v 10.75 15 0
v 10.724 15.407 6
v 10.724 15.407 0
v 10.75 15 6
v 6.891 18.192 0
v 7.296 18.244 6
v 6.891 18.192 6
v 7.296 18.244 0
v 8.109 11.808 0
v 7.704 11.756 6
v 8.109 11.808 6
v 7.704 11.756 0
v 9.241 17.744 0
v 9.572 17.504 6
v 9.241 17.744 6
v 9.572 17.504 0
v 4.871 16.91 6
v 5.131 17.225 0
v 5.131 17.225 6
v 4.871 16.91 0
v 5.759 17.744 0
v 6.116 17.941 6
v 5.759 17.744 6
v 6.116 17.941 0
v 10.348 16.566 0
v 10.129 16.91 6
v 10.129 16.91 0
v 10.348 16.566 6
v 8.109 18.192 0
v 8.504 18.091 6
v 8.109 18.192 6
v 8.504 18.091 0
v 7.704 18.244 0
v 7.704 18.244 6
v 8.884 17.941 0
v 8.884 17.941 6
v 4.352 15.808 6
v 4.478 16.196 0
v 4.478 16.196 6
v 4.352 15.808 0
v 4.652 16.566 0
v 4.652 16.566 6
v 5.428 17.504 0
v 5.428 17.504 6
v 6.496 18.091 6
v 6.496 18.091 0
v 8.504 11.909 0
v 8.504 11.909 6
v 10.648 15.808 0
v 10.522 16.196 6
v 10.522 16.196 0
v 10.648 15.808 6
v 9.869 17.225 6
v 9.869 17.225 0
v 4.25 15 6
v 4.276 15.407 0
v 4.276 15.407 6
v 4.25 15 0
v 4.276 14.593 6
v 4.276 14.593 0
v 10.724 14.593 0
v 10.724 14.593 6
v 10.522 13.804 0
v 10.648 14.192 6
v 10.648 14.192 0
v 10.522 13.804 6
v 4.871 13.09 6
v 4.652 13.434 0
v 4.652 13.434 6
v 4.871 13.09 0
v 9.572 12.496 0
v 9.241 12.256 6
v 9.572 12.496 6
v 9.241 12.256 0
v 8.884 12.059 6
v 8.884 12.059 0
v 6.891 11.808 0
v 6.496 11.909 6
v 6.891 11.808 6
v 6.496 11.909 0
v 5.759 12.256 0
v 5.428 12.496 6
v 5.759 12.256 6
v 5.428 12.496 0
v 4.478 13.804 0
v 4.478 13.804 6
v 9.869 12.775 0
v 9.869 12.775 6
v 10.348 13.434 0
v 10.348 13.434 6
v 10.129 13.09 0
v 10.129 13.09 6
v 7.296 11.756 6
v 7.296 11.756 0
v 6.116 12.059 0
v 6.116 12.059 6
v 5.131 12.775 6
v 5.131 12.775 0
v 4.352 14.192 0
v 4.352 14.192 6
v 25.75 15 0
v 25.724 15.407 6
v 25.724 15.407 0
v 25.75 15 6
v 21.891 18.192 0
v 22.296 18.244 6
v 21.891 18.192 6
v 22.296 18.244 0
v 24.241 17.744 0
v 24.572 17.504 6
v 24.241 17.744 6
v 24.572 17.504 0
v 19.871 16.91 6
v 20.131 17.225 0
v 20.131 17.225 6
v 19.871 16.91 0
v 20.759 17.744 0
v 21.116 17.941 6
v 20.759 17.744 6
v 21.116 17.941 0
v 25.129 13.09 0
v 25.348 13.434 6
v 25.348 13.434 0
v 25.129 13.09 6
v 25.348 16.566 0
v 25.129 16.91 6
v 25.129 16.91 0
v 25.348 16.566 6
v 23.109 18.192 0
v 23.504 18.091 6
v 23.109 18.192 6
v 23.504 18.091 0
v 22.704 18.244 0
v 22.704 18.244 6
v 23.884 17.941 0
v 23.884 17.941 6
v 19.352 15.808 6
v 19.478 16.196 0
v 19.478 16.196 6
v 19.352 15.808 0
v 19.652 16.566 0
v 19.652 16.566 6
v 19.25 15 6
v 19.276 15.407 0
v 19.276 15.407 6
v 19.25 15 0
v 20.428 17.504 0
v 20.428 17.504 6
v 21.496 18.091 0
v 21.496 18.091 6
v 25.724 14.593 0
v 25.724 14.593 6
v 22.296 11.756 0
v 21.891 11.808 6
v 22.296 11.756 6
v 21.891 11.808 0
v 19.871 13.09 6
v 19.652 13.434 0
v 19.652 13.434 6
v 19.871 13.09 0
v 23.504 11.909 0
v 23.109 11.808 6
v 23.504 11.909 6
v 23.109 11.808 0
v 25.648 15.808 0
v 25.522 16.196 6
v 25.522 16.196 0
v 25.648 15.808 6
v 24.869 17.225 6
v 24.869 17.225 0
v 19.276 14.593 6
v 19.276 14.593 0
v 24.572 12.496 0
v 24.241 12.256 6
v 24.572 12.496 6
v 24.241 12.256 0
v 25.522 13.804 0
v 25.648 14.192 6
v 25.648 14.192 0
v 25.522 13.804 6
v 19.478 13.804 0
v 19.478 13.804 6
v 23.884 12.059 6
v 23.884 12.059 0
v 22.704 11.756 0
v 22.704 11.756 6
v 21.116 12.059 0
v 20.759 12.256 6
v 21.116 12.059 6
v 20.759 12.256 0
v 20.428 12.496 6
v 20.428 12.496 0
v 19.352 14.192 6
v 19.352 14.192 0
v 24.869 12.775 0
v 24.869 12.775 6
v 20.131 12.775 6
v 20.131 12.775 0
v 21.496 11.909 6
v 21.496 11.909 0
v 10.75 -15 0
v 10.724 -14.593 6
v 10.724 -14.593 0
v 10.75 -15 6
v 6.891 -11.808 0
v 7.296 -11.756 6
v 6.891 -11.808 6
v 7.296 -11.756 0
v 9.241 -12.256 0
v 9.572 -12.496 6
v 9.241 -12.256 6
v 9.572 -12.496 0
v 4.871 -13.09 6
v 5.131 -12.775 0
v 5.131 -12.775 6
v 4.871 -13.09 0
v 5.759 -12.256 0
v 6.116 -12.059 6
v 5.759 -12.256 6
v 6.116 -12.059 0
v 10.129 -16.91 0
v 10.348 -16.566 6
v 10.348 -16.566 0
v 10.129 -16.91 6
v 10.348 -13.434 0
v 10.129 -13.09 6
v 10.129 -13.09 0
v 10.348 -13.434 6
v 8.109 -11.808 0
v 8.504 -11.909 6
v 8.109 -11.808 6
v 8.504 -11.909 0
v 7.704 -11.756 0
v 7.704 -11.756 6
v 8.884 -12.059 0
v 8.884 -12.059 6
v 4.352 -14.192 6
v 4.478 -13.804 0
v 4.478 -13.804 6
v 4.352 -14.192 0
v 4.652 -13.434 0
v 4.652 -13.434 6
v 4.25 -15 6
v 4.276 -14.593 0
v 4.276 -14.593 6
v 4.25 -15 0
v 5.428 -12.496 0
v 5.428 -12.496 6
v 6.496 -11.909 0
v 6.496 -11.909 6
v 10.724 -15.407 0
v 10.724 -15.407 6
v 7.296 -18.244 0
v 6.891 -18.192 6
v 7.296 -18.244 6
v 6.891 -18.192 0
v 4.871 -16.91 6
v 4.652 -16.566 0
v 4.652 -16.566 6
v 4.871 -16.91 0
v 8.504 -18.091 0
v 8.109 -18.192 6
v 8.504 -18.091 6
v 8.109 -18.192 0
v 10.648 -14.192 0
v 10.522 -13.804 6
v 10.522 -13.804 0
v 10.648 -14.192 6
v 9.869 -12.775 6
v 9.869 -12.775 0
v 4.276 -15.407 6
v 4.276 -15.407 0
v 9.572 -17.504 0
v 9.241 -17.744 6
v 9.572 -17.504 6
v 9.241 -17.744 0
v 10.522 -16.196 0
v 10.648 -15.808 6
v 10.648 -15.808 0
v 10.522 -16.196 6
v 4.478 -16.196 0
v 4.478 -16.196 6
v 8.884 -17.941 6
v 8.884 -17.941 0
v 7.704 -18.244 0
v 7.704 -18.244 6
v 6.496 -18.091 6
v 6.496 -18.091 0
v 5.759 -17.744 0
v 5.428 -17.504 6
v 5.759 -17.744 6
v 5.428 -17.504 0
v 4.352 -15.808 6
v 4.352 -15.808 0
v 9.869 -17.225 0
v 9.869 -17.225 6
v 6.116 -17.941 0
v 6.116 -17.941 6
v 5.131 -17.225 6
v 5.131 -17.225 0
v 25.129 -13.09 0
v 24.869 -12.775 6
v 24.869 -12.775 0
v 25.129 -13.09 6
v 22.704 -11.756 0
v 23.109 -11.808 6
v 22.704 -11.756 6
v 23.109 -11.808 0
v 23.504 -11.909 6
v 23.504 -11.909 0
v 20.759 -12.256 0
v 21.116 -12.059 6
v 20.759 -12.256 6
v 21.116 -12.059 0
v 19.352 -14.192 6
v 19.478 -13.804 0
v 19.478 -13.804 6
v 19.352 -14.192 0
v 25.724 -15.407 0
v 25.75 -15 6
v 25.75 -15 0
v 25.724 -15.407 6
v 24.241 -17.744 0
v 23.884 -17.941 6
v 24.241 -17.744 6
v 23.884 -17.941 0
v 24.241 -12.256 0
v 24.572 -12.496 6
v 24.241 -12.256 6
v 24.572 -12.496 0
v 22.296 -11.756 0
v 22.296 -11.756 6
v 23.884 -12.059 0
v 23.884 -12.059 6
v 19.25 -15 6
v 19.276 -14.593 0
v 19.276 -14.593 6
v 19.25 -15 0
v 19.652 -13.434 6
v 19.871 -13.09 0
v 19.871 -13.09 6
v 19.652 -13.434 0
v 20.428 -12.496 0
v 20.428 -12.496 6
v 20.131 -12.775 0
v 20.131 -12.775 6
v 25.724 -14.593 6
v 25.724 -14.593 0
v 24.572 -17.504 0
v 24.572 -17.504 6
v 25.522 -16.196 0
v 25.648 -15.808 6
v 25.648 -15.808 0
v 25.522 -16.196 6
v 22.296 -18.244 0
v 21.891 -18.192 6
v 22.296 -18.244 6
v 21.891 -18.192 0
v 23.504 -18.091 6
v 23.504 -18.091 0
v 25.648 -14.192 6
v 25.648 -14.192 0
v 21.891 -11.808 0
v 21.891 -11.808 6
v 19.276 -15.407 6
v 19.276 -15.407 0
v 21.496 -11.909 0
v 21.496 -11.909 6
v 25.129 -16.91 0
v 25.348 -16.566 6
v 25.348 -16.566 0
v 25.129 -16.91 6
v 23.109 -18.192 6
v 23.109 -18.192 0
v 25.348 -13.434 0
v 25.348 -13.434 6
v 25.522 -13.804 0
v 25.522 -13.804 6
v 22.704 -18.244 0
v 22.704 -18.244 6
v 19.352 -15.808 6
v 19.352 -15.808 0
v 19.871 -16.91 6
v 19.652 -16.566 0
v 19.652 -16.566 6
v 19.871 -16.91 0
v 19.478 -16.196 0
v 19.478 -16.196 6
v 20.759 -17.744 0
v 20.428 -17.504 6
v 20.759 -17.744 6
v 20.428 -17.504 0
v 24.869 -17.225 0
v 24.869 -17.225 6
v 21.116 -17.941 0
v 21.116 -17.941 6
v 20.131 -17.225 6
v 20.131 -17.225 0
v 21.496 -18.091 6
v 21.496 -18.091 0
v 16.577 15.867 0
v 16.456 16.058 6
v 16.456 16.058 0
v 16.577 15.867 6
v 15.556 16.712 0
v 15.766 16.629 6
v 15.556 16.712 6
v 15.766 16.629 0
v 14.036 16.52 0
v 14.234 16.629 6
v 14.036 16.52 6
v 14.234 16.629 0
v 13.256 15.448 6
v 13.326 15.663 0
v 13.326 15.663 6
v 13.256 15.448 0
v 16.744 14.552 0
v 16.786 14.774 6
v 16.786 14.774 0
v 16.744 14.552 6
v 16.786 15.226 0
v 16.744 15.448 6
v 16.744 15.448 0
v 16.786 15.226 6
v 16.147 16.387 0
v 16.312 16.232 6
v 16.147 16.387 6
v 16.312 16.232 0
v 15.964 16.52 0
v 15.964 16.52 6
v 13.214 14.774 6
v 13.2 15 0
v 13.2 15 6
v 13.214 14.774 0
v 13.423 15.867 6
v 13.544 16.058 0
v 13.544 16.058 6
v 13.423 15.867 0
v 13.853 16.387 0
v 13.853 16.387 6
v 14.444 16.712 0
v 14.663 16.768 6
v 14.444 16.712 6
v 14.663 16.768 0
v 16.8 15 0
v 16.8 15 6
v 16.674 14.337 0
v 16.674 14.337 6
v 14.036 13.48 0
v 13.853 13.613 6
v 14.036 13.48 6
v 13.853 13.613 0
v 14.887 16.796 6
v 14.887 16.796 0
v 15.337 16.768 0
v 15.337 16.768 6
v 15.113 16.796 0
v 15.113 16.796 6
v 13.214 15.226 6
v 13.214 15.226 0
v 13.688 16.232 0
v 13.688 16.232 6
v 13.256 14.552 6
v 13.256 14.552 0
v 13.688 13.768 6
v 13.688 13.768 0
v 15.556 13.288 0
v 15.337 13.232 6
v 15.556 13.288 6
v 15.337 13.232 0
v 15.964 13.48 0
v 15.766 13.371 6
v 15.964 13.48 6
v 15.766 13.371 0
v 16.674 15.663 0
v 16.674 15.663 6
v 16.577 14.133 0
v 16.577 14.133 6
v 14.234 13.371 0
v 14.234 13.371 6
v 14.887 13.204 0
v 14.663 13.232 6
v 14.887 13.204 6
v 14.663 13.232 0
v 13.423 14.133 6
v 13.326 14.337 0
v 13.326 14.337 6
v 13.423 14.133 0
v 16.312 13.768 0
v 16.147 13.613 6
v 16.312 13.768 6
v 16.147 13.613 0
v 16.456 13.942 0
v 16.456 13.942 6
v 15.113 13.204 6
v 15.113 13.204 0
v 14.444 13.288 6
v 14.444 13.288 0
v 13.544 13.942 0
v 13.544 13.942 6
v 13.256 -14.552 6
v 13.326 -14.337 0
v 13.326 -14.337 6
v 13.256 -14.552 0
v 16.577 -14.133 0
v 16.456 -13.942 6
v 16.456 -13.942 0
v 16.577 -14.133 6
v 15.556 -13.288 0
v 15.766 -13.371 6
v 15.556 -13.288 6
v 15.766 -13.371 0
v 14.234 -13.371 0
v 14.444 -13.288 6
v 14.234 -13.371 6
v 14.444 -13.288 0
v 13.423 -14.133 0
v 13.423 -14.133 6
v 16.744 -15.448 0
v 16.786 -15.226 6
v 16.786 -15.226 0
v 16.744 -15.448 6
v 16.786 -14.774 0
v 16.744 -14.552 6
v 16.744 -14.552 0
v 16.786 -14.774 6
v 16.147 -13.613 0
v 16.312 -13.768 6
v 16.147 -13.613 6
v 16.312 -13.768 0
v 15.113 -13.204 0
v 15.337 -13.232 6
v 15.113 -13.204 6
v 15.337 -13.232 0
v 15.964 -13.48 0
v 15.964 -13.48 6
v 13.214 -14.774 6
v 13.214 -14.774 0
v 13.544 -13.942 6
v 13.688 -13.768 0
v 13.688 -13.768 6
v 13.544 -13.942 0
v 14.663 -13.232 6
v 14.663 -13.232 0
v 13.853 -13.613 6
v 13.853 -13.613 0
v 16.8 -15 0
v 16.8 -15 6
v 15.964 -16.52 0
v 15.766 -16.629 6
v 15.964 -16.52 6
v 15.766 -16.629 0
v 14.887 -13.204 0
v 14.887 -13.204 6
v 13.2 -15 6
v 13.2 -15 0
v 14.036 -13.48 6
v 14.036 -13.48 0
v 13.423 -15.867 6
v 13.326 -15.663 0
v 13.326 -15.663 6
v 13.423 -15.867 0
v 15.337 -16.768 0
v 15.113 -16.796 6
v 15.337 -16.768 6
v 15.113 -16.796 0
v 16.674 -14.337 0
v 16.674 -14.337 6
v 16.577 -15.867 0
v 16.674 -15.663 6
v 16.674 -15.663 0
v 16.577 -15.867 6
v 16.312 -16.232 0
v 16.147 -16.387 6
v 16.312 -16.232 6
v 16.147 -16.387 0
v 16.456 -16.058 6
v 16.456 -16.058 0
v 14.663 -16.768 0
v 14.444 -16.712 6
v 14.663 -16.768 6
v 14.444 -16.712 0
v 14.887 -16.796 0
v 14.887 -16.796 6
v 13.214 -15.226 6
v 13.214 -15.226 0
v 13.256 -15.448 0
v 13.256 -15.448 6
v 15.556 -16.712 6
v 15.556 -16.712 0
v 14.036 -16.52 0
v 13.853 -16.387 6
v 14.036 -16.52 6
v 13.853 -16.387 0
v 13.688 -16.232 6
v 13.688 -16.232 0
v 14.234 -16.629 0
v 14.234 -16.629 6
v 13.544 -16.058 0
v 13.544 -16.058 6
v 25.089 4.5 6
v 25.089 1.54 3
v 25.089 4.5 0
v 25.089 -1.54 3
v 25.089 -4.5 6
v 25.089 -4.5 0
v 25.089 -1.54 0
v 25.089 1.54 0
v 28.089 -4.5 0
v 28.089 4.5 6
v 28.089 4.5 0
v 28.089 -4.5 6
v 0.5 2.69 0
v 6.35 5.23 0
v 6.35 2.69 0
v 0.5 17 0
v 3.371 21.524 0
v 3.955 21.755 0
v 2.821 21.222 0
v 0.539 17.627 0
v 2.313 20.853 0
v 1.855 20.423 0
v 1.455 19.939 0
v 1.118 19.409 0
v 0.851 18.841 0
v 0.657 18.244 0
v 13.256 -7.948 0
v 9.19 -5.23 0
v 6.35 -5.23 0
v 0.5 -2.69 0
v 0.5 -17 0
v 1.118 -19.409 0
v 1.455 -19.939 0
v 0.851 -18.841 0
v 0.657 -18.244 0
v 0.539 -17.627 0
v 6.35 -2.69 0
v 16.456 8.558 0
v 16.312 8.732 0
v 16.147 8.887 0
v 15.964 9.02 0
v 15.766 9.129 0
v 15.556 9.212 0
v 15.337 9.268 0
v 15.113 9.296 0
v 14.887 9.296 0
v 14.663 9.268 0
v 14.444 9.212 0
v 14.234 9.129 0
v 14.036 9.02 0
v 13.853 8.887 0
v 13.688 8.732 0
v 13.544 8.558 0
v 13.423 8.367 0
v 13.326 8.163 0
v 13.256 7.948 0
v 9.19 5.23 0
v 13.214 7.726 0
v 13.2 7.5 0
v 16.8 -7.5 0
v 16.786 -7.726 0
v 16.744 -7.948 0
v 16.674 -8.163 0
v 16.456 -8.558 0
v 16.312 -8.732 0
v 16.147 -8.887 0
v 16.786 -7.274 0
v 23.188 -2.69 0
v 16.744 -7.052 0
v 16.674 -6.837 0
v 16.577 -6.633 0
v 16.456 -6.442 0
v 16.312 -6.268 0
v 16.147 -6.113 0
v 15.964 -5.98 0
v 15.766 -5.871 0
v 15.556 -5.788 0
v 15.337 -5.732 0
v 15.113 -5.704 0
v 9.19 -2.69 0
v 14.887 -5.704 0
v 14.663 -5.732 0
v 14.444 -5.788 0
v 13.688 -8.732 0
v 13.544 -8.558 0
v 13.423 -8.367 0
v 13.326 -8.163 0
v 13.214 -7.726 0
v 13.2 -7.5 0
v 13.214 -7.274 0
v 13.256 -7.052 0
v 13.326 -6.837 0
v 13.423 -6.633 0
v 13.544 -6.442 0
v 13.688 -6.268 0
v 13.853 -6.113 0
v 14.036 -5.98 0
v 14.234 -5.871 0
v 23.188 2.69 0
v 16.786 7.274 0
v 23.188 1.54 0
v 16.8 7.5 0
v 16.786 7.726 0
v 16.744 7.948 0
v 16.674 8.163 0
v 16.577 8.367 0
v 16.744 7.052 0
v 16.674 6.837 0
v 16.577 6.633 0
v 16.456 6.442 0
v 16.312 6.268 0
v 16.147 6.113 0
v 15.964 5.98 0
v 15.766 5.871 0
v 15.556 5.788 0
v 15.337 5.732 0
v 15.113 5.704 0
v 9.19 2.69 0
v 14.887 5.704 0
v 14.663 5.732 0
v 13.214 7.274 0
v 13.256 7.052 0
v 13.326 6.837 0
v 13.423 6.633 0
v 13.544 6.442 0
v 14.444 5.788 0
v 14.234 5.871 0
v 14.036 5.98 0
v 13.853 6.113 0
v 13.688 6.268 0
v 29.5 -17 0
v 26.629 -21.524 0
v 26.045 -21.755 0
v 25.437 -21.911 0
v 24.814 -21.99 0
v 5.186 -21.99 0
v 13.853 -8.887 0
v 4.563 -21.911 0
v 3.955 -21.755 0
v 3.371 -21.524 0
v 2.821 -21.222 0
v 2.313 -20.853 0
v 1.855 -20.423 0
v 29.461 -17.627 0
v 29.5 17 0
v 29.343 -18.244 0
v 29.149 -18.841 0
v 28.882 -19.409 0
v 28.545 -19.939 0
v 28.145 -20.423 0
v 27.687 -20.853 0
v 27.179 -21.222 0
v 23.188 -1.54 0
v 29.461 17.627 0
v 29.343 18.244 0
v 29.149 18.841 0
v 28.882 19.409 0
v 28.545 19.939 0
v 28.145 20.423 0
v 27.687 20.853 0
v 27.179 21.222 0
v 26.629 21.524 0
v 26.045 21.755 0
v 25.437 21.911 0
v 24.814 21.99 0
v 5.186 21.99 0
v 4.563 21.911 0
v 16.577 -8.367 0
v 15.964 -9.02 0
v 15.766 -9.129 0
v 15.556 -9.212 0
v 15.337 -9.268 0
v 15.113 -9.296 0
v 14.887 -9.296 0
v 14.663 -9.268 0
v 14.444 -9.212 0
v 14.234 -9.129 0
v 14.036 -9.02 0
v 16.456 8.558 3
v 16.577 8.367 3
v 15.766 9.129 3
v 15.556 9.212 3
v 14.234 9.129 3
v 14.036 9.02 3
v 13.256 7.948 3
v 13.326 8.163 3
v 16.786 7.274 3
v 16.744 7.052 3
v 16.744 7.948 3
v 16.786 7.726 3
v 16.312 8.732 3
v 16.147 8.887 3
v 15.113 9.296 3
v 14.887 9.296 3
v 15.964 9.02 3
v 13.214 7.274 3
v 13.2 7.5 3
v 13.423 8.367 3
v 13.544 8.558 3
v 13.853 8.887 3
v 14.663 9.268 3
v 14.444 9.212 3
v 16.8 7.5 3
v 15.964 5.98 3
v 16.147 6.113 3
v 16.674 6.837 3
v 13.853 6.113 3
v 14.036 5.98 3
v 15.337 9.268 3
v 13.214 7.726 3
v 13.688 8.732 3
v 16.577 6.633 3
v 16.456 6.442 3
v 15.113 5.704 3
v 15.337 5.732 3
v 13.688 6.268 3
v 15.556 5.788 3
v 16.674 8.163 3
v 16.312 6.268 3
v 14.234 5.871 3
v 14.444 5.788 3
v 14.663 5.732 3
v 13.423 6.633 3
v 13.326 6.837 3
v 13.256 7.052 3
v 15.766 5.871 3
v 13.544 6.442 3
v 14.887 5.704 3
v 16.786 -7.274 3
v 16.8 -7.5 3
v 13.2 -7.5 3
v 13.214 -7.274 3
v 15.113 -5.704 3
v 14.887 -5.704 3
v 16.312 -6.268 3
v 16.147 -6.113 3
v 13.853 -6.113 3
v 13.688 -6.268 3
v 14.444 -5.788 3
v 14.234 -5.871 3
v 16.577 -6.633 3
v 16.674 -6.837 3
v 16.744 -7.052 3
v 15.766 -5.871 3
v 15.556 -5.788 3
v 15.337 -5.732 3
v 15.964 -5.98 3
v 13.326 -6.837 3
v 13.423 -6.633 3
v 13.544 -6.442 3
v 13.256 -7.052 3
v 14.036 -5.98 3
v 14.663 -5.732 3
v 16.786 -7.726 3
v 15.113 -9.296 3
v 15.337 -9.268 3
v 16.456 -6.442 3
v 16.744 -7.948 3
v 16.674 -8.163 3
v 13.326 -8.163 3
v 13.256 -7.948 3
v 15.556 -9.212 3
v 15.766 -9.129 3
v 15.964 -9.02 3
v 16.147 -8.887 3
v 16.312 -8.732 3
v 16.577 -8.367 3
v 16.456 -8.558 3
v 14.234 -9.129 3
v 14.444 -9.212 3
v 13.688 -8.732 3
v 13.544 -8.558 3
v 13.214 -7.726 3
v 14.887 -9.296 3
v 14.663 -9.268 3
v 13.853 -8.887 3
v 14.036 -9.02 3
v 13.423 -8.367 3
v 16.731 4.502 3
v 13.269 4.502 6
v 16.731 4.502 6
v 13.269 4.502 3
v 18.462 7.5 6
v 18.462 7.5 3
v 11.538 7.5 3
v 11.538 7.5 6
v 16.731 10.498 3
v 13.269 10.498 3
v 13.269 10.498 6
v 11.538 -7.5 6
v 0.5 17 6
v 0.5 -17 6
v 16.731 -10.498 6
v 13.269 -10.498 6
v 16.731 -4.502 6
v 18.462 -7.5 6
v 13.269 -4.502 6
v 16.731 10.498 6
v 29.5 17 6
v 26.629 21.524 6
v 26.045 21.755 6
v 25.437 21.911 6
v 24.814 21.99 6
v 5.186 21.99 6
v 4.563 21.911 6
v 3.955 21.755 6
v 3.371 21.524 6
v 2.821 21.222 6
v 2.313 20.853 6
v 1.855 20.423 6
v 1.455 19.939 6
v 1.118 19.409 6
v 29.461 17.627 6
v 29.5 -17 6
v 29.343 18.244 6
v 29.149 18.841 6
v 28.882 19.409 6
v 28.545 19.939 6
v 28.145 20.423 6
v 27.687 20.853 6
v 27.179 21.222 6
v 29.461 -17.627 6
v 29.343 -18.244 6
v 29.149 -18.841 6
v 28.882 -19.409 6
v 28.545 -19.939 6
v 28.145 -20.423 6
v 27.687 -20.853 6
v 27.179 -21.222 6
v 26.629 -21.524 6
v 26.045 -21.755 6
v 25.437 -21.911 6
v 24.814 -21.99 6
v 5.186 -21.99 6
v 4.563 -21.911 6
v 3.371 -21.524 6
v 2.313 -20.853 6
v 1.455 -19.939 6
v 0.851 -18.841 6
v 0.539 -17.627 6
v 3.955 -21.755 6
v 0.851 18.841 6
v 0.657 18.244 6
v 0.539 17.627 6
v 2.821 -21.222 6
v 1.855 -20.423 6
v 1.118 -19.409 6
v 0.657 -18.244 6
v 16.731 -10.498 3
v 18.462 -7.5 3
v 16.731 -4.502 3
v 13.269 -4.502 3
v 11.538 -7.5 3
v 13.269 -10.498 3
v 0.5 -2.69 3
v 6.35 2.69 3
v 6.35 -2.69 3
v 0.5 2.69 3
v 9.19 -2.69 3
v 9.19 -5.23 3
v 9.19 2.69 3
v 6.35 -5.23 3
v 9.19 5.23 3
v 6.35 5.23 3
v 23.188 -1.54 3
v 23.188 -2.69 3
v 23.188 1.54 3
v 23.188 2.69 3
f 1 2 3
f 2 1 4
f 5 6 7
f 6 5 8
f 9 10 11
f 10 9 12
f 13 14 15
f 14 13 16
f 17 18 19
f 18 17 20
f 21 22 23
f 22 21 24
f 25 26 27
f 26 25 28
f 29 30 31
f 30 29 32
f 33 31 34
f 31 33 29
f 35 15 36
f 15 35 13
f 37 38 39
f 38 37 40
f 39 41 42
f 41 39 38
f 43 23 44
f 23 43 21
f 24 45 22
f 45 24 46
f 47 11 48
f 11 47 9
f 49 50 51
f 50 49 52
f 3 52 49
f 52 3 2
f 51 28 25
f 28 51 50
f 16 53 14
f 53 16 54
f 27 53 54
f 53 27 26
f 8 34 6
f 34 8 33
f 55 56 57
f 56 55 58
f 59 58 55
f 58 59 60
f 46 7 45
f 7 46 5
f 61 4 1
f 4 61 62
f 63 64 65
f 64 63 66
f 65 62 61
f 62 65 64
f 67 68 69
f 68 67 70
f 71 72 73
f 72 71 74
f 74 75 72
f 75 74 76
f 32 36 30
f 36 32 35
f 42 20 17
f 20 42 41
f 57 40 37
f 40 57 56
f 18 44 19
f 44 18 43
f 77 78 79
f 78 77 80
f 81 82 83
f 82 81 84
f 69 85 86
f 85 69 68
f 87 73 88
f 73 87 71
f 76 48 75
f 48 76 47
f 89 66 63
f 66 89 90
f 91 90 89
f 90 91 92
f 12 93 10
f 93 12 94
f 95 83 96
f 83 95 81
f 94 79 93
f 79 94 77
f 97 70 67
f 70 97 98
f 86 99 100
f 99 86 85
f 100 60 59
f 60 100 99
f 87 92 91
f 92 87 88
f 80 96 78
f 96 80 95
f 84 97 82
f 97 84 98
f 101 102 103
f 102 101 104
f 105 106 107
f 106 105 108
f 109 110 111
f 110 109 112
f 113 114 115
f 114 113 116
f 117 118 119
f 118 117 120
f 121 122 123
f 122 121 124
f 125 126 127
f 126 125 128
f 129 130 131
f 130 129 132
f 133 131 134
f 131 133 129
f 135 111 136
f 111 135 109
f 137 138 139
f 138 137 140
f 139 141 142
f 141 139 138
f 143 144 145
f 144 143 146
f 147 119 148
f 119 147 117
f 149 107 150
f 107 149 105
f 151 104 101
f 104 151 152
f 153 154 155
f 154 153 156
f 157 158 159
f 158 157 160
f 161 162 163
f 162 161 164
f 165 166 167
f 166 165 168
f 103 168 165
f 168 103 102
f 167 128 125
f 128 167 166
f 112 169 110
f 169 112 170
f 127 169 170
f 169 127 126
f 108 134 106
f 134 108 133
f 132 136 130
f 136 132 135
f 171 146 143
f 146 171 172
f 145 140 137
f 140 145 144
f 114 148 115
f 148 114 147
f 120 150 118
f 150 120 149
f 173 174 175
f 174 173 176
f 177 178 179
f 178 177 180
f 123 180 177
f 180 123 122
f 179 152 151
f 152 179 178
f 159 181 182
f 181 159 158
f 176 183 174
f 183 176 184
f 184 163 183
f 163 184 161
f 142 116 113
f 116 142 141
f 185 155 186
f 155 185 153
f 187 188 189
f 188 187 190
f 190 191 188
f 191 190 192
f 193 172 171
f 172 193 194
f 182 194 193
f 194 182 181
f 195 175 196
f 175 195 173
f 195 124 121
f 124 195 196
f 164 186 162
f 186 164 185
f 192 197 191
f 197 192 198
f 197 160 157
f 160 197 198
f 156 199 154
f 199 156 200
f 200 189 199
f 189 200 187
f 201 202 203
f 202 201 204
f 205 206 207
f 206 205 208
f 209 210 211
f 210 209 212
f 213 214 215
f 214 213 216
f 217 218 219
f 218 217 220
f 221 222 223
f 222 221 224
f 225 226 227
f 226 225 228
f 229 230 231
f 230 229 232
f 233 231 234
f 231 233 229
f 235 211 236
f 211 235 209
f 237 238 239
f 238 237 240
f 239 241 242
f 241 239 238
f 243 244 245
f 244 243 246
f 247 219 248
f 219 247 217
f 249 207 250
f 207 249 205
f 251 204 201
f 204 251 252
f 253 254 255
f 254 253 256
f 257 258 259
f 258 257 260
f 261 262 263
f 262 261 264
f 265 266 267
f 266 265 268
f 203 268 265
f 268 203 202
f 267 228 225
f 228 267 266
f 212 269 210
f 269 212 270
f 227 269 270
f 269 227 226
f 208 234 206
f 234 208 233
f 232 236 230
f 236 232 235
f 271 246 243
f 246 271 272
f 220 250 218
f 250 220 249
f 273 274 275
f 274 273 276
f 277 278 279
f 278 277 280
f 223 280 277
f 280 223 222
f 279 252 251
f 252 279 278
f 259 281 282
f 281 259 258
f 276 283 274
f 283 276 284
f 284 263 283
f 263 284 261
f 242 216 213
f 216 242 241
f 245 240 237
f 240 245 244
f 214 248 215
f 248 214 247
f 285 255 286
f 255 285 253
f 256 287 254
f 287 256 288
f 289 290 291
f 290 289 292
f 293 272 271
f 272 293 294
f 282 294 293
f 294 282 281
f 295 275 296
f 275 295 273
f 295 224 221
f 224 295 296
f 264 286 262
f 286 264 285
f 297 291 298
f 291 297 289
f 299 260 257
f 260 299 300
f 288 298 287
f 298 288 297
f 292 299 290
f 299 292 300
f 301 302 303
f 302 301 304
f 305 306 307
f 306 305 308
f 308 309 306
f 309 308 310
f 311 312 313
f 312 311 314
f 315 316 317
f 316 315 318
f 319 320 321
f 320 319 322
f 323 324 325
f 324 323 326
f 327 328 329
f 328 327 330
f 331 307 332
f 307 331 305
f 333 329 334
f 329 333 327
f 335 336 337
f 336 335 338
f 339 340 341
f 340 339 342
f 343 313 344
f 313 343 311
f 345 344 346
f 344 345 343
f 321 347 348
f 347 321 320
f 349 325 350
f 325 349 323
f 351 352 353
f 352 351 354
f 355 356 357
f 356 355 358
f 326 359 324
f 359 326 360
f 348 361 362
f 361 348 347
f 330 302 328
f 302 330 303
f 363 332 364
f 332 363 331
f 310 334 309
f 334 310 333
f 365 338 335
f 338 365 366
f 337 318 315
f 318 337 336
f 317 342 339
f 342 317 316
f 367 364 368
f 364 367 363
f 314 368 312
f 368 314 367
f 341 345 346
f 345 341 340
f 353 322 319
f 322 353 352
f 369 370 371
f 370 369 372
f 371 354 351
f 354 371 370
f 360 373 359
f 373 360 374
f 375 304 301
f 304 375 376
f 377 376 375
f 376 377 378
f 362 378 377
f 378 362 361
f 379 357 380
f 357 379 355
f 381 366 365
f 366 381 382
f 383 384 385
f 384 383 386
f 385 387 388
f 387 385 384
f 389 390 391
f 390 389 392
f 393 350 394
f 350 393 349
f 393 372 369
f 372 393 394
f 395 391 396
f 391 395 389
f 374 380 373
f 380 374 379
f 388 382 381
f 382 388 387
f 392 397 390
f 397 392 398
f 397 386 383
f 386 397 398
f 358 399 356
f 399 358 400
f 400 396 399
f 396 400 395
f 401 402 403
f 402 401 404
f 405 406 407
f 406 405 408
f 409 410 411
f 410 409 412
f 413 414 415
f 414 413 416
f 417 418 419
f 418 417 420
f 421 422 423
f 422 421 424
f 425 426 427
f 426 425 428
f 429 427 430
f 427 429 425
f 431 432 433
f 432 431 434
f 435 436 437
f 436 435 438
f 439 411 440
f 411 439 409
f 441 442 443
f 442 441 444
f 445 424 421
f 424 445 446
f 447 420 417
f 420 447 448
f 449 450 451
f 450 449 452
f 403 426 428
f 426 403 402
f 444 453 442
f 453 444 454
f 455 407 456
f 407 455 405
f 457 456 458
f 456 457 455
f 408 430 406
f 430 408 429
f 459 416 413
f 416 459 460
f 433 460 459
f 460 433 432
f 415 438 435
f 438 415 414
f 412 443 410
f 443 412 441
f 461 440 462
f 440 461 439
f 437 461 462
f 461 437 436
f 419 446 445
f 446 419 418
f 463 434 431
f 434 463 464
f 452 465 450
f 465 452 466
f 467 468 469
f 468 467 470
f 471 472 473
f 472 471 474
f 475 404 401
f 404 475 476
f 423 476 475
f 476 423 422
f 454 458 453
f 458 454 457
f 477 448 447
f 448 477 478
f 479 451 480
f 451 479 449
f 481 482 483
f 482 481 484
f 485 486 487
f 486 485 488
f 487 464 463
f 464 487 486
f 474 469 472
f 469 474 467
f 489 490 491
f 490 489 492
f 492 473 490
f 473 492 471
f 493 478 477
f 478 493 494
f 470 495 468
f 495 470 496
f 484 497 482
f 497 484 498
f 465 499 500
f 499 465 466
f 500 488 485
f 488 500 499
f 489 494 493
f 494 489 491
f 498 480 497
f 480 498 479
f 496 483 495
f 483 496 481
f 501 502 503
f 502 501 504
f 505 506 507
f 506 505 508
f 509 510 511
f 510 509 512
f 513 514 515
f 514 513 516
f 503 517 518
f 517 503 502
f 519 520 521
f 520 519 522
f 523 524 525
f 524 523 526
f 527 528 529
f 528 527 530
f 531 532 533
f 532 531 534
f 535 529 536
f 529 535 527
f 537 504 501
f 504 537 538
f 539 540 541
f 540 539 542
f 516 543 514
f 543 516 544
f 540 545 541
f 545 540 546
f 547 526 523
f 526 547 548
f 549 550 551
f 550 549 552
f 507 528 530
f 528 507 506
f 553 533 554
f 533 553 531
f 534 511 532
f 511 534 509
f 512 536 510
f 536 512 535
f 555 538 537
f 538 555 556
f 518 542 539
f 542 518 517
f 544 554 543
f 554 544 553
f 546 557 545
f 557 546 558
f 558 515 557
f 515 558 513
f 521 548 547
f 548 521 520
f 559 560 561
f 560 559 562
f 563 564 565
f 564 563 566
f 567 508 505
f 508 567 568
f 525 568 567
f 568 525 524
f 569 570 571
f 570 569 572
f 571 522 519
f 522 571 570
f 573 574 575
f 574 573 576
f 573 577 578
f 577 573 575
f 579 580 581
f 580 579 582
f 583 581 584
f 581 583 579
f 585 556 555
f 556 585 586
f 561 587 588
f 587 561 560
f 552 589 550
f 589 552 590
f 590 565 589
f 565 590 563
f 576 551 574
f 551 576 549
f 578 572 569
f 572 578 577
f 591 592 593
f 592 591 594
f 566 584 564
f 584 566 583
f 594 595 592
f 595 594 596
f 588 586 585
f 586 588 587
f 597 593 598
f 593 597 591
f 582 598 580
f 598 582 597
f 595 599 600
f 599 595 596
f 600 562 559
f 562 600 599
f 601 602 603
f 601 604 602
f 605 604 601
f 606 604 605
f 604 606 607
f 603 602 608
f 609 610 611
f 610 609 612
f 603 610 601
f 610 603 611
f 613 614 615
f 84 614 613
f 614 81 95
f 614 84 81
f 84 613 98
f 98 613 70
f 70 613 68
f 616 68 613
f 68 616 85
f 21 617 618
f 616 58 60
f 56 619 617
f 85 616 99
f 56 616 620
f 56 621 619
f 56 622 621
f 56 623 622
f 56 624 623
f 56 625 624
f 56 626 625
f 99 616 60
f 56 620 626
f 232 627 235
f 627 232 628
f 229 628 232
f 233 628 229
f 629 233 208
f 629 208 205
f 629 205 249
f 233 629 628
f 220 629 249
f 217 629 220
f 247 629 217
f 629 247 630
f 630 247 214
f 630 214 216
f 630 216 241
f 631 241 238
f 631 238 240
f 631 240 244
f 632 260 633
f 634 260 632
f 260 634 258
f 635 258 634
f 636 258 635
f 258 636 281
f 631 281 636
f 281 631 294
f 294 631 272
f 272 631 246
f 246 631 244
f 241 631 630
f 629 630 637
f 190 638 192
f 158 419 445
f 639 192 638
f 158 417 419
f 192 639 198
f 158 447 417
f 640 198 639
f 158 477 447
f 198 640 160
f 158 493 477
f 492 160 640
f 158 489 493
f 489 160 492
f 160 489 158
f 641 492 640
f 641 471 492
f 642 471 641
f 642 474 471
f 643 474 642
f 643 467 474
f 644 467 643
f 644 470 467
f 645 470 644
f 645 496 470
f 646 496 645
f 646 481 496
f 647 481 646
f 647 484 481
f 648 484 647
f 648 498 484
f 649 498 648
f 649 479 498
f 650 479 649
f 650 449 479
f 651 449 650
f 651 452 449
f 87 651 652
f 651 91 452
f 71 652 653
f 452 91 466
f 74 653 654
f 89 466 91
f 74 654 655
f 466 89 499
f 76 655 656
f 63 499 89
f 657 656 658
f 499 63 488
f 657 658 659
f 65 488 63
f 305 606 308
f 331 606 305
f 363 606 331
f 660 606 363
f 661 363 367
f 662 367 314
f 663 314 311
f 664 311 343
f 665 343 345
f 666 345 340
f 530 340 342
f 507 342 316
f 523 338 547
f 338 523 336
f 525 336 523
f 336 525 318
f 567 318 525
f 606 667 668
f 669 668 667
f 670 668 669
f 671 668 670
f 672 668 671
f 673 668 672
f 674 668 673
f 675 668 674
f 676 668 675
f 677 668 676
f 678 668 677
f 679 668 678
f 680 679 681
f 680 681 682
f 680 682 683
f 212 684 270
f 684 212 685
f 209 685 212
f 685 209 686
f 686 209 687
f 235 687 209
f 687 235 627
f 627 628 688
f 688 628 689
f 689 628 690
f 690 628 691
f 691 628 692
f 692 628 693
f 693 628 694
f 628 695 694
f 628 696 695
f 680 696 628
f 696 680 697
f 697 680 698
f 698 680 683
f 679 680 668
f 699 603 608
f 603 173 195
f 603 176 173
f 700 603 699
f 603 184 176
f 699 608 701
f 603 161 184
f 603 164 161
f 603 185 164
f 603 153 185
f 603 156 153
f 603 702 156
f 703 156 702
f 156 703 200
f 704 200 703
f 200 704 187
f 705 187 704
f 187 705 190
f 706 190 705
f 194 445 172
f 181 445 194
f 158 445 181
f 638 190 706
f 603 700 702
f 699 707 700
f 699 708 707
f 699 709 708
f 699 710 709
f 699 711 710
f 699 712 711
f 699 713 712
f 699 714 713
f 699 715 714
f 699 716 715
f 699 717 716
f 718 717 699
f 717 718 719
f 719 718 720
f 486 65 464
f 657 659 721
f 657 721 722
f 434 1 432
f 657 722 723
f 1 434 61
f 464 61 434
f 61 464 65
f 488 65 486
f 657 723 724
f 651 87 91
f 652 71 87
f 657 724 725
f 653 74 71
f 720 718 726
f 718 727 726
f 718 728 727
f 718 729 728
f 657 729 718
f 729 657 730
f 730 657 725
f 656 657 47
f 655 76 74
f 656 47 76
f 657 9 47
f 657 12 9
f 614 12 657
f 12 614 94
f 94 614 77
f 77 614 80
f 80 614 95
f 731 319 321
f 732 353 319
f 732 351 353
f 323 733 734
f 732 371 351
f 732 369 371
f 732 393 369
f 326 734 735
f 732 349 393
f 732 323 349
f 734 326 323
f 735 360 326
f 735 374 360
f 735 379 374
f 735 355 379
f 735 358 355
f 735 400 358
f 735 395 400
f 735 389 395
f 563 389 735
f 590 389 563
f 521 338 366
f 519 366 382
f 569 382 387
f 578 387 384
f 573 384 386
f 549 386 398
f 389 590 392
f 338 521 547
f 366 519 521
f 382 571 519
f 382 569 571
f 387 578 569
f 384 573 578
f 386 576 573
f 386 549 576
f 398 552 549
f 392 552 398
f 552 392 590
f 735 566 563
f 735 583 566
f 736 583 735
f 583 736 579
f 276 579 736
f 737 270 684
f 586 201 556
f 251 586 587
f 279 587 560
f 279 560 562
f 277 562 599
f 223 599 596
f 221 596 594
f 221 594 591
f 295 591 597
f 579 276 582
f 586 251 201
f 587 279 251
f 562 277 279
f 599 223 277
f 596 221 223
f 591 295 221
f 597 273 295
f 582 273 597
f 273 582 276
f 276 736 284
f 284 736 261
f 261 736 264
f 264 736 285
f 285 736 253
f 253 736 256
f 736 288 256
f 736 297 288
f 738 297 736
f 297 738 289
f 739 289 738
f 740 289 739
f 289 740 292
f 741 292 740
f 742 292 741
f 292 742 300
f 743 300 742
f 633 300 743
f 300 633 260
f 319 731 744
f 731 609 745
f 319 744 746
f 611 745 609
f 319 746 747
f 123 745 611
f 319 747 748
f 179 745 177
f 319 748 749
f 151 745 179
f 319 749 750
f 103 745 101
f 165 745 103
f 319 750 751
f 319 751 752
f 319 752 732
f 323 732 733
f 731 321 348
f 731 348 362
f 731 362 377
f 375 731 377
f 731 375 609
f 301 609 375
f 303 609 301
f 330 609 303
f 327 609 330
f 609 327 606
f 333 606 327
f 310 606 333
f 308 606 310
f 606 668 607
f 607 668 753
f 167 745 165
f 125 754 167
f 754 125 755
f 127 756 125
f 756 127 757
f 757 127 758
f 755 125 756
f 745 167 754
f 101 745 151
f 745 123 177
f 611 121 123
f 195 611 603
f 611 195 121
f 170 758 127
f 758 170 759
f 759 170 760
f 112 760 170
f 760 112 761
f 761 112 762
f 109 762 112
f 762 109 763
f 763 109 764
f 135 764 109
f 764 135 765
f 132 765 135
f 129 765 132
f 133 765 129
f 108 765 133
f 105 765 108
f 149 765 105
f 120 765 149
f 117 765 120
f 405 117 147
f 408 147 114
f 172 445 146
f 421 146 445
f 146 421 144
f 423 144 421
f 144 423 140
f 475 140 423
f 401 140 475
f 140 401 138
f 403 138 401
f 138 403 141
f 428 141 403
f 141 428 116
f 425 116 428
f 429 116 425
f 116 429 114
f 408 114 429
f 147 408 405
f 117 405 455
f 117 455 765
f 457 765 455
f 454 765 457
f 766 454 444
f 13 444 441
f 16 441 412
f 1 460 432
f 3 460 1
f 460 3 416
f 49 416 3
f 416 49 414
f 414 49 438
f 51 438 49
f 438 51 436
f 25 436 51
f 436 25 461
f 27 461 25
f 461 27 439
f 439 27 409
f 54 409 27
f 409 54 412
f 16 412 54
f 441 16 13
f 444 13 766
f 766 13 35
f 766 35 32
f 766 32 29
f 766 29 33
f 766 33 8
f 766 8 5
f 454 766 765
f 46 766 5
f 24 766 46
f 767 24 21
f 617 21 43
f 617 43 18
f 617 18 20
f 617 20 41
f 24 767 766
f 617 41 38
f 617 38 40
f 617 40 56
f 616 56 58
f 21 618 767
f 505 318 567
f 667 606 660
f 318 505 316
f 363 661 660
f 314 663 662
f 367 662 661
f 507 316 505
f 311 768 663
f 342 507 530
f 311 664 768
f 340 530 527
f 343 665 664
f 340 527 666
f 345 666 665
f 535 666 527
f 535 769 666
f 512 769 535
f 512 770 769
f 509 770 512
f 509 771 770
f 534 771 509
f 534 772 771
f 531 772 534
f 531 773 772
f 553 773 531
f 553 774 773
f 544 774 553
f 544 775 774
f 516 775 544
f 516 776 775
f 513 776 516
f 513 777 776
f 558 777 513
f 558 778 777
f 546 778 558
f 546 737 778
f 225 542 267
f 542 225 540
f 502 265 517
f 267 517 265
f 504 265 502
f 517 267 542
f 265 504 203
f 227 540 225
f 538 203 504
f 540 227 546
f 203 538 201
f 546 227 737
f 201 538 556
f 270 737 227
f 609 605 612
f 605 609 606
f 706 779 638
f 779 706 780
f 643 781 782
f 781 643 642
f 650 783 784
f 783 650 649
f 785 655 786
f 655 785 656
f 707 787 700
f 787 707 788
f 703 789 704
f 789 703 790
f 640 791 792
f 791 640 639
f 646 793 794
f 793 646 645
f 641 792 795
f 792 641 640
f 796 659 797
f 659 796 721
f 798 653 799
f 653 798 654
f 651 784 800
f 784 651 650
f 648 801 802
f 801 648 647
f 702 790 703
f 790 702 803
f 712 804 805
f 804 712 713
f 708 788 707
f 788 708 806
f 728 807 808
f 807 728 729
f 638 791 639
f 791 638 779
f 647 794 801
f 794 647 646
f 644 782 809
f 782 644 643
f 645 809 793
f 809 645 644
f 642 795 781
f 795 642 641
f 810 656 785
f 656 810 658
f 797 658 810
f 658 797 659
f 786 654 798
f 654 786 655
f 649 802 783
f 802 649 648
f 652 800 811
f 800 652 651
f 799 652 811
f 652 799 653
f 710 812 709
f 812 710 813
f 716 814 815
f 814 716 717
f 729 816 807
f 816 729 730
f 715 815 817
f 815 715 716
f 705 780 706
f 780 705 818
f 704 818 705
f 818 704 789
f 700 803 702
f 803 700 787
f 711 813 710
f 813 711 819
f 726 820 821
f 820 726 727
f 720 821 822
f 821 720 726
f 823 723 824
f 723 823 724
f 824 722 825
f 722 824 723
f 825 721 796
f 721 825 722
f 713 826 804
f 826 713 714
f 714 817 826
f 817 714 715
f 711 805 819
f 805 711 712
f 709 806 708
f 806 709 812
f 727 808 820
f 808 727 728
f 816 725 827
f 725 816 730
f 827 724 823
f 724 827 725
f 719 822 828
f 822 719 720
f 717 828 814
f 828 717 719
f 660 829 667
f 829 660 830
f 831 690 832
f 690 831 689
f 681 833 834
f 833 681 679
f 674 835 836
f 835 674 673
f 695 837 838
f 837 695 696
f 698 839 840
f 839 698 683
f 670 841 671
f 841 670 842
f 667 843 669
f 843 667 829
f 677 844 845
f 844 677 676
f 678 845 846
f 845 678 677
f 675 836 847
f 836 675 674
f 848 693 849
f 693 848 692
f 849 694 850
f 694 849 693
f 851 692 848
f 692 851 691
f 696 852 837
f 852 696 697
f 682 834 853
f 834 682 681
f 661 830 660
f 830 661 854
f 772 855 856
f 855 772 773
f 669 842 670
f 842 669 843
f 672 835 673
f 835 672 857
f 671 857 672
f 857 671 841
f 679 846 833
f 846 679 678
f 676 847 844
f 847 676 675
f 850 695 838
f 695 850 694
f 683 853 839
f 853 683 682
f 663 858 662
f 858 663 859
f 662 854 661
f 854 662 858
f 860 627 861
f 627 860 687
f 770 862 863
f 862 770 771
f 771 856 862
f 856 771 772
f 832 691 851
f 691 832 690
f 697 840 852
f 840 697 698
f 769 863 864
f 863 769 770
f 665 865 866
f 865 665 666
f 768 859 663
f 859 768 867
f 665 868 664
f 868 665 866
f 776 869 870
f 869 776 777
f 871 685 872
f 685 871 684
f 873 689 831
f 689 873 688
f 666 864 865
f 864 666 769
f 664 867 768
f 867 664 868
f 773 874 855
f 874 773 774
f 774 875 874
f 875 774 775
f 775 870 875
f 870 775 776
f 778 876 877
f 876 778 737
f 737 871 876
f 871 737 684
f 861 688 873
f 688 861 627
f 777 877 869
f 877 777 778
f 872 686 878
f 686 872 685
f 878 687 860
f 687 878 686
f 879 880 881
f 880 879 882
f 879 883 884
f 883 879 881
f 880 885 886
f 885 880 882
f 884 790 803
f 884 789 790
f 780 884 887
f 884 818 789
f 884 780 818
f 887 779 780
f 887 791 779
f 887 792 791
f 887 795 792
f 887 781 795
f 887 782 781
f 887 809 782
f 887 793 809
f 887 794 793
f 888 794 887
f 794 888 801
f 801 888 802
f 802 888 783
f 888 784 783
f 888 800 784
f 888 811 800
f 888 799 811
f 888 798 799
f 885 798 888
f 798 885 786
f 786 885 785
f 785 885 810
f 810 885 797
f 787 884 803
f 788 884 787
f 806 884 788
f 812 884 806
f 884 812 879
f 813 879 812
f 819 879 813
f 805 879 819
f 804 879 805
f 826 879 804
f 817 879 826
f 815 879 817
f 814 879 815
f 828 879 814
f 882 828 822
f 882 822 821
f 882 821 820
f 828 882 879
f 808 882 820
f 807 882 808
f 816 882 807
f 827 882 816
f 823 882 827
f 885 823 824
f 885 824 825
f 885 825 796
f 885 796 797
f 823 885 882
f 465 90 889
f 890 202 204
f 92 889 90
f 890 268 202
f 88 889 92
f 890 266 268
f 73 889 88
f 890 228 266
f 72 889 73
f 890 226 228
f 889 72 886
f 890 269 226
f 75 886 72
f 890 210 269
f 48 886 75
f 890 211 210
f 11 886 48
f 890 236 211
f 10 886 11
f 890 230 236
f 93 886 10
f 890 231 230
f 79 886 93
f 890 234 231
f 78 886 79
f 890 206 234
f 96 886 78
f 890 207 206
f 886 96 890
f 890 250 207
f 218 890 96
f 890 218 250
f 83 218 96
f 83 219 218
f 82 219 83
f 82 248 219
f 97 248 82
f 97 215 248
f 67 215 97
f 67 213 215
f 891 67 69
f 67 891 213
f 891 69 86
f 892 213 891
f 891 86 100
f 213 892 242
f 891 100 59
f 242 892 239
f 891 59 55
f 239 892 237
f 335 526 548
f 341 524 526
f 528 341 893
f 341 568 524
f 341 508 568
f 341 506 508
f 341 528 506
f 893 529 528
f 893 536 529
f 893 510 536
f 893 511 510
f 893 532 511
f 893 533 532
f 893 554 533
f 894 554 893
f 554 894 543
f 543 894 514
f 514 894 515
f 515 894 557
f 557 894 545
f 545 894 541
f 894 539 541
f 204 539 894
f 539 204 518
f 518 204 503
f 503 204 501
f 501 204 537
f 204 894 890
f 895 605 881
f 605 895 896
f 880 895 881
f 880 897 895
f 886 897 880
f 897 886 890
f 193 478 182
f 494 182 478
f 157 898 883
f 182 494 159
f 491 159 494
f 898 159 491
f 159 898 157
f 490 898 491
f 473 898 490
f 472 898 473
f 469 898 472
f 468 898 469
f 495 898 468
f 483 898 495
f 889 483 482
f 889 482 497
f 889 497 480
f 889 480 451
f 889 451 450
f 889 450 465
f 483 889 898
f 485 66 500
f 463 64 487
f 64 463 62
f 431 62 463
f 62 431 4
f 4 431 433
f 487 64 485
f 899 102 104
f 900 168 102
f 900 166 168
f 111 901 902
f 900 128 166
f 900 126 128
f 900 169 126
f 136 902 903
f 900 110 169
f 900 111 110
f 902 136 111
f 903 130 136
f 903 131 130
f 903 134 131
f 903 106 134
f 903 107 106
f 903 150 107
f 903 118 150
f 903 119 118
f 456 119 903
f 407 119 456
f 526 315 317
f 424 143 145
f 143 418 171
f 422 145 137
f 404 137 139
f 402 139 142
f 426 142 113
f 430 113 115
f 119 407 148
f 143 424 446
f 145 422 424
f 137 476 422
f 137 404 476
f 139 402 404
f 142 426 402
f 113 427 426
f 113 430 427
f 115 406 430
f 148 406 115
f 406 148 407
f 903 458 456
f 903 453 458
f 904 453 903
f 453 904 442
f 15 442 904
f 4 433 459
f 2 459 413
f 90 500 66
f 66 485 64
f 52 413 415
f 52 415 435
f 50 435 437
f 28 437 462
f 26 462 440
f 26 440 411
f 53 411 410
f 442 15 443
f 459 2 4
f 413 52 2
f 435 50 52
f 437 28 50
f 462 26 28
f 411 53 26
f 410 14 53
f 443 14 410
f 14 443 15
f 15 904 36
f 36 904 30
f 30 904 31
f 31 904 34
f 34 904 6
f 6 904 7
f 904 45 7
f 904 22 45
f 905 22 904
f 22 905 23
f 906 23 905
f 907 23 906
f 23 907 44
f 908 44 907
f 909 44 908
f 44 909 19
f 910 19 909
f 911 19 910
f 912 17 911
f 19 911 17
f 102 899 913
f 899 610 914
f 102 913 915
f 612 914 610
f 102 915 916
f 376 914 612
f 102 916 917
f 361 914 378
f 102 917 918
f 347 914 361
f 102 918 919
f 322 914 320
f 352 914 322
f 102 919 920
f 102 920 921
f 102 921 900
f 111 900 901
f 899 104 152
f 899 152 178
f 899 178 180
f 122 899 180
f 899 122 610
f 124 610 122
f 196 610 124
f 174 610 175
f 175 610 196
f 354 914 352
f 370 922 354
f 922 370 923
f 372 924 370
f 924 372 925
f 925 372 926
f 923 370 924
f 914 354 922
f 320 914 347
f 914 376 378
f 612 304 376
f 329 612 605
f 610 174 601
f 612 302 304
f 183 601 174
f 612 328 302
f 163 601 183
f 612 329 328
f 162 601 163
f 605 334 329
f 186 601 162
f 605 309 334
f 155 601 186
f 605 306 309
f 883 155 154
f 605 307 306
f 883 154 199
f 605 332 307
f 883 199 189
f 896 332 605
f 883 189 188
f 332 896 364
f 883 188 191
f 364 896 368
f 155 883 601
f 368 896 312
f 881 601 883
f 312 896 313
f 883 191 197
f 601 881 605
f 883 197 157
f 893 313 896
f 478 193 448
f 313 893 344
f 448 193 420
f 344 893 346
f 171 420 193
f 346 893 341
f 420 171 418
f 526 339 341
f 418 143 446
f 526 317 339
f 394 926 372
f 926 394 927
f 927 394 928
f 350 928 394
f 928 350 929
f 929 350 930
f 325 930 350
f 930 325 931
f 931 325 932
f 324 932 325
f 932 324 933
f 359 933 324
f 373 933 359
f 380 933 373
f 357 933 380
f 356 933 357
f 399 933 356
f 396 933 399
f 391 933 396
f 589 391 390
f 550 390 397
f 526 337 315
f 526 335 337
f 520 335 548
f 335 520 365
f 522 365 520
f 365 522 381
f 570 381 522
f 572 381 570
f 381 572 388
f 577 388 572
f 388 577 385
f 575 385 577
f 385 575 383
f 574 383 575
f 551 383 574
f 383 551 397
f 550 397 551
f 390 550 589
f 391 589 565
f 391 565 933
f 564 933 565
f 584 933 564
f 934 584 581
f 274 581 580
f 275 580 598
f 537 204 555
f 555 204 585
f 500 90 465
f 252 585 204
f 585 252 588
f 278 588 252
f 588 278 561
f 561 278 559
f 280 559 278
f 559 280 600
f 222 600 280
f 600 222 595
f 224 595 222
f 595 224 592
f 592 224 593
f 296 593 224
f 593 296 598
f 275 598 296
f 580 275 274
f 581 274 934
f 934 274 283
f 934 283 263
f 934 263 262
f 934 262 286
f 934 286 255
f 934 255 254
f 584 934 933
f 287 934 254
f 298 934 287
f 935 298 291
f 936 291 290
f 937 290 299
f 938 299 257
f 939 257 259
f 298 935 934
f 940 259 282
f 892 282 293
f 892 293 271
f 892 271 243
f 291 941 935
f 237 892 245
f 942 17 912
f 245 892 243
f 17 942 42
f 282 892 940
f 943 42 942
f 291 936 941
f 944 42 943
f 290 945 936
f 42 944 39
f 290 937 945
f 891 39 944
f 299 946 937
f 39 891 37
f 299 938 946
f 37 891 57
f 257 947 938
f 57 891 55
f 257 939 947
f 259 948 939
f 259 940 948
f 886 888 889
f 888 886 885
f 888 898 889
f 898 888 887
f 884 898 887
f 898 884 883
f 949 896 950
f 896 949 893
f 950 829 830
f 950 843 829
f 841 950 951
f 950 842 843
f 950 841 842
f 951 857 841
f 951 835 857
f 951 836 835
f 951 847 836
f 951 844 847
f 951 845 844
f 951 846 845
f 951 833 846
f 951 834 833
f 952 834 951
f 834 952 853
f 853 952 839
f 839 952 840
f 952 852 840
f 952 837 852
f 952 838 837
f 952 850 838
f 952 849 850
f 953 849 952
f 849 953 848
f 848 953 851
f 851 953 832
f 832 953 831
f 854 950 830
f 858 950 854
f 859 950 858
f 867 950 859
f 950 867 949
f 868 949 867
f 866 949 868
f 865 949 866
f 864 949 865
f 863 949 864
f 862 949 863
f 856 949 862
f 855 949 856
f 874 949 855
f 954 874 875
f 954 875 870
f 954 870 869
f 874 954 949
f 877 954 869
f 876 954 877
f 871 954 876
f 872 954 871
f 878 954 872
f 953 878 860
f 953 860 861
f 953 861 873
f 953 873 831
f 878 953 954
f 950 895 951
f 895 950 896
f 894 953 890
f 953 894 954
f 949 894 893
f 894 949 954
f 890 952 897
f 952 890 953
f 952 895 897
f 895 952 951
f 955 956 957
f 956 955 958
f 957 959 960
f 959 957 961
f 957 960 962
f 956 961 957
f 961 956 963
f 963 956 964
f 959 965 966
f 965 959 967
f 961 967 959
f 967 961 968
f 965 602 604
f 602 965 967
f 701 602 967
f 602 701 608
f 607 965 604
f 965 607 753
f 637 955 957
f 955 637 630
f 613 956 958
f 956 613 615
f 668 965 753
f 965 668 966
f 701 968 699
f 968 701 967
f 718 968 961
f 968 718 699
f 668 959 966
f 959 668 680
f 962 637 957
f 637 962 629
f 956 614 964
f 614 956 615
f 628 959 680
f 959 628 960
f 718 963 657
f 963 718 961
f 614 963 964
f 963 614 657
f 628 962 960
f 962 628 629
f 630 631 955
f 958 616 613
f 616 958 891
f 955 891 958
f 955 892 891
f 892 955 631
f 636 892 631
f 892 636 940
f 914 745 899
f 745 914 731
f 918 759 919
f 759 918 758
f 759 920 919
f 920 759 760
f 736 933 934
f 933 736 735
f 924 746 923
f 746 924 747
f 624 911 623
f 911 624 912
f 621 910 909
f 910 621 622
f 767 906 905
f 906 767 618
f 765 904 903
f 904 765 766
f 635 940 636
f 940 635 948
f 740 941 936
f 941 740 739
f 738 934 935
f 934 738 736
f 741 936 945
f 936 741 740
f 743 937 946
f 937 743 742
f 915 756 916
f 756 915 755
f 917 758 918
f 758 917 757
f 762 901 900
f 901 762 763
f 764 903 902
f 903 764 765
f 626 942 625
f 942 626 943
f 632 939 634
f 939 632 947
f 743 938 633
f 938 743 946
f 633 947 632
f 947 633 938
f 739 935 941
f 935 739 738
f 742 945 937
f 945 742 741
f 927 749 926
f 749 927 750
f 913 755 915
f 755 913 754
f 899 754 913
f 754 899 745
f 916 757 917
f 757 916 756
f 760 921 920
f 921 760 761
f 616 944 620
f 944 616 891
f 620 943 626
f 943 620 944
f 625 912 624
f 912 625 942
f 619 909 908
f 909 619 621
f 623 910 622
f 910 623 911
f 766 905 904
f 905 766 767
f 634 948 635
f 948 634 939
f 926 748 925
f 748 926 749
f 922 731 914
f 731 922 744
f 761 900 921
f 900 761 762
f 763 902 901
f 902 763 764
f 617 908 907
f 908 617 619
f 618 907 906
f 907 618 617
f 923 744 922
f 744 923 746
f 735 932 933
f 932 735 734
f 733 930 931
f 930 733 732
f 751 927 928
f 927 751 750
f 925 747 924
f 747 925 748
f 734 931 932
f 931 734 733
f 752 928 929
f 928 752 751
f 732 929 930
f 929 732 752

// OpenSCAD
$fn = 50;


difference() {
	union() {
		translate(v = [15.0000000000, 0, 0]) {
			rotate(a = [0, 0, 0]) {
				hull() {
					translate(v = [-9.5000000000, 17.0000000000, 0]) {
						rotate(a = [0, 0, 0]) {
							translate(v = [0, 0, 0]) {
								rotate(a = [0, 0, 0]) {
									cylinder(h = 6, r = 5);
								}
							}
						}
					}
					translate(v = [9.5000000000, 17.0000000000, 0]) {
						rotate(a = [0, 0, 0]) {
							translate(v = [0, 0, 0]) {
								rotate(a = [0, 0, 0]) {
									cylinder(h = 6, r = 5);
								}
							}
						}
					}
					translate(v = [-9.5000000000, -17.0000000000, 0]) {
						rotate(a = [0, 0, 0]) {
							translate(v = [0, 0, 0]) {
								rotate(a = [0, 0, 0]) {
									cylinder(h = 6, r = 5);
								}
							}
						}
					}
					translate(v = [9.5000000000, -17.0000000000, 0]) {
						rotate(a = [0, 0, 0]) {
							translate(v = [0, 0, 0]) {
								rotate(a = [0, 0, 0]) {
									cylinder(h = 6, r = 5);
								}
							}
						}
					}
				}
			}
		}
	}
	union() {
		translate(v = [7.5000000000, 15.0000000000, -125.0000000000]) {
			rotate(a = [0, 0, 0]) {
				cylinder(h = 250, r = 3.2500000000);
			}
		}
		translate(v = [22.5000000000, 15.0000000000, -125.0000000000]) {
			rotate(a = [0, 0, 0]) {
				cylinder(h = 250, r = 3.2500000000);
			}
		}
		translate(v = [7.5000000000, -15.0000000000, -125.0000000000]) {
			rotate(a = [0, 0, 0]) {
				cylinder(h = 250, r = 3.2500000000);
			}
		}
		translate(v = [22.5000000000, -15.0000000000, -125.0000000000]) {
			rotate(a = [0, 0, 0]) {
				cylinder(h = 250, r = 3.2500000000);
			}
		}
		translate(v = [7.5000000000, 15.0000000000, -125.0000000000]) {
			rotate(a = [0, 0, 0]) {
				cylinder(h = 250, r = 1.8000000000);
			}
		}
		translate(v = [15.0000000000, 15.0000000000, -125.0000000000]) {
			rotate(a = [0, 0, 0]) {
				cylinder(h = 250, r = 1.8000000000);
			}
		}
		translate(v = [22.5000000000, 15.0000000000, -125.0000000000]) {
			rotate(a = [0, 0, 0]) {
				cylinder(h = 250, r = 1.8000000000);
			}
		}
		translate(v = [7.5000000000, -15.0000000000, -125.0000000000]) {
			rotate(a = [0, 0, 0]) {
				cylinder(h = 250, r = 1.8000000000);
			}
		}
		translate(v = [15.0000000000, -15.0000000000, -125.0000000000]) {
			rotate(a = [0, 0, 0]) {
				cylinder(h = 250, r = 1.8000000000);
			}
		}
		translate(v = [22.5000000000, -15.0000000000, -125.0000000000]) {
			rotate(a = [0, 0, 0]) {
				cylinder(h = 250, r = 1.8000000000);
			}
		}
		translate(v = [25.0890000000, -4.5000000000, 0]) {
			rotate(a = [0, 0, 0]) {
				cube(size = [3, 9, 10]);
			}
		}
		translate(v = [15, 7.5000000000, -125.0000000000]) {
			rotate(a = [0, 0, 0]) {
				cylinder(h = 250, r = 1.8000000000);
			}
		}
		translate(v = [15, -7.5000000000, -125.0000000000]) {
			rotate(a = [0, 0, 0]) {
				cylinder(h = 250, r = 1.8000000000);
			}
		}
		translate(v = [15, 7.5000000000, 3]) {
			rotate(a = [0, 0, 0]) {
				translate(v = [0, 0, 0]) {
					rotate(a = [0, 0, 0]) {
						linear_extrude(height = 3) {
							polygon(points = [[3.4620000000, 0.0000000000], [1.7310000000, 2.9981799479], [-1.7310000000, 2.9981799479], [-3.4620000000, 0.0000000000], [-1.7310000000, -2.9981799479], [1.7310000000, -2.9981799479]]);
						}
					}
				}
			}
		}
		translate(v = [15, -7.5000000000, 3]) {
			rotate(a = [0, 0, 0]) {
				translate(v = [0, 0, 0]) {
					rotate(a = [0, 0, 0]) {
						linear_extrude(height = 3) {
							polygon(points = [[3.4620000000, 0.0000000000], [1.7310000000, 2.9981799479], [-1.7310000000, 2.9981799479], [-3.4620000000, 0.0000000000], [-1.7310000000, -2.9981799479], [1.7310000000, -2.9981799479]]);
						}
					}
				}
			}
		}
		translate(v = [22.6310000000, -1.5400000000, 0]) {
			rotate(a = [0, 0, 0]) {
				cube(size = [5, 3.0800000000, 3]);
			}
		}
		translate(v = [0.2040000000, -2.6900000000, 0]) {
			rotate(a = [0, 0, 0]) {
				cube(size = [6.3000000000, 5.3800000000, 3]);
			}
		}
		translate(v = [8.8880000000, -2.6900000000, 0]) {
			rotate(a = [0, 0, 0]) {
				cube(size = [14.3000000000, 5.3800000000, 3]);
			}
		}
		translate(v = [6.3500000000, -5.2300000000, 0]) {
			rotate(a = [0, 0, 0]) {
				cube(size = [2.8400000000, 10.4600000000, 3]);
			}
		}
	}
}
